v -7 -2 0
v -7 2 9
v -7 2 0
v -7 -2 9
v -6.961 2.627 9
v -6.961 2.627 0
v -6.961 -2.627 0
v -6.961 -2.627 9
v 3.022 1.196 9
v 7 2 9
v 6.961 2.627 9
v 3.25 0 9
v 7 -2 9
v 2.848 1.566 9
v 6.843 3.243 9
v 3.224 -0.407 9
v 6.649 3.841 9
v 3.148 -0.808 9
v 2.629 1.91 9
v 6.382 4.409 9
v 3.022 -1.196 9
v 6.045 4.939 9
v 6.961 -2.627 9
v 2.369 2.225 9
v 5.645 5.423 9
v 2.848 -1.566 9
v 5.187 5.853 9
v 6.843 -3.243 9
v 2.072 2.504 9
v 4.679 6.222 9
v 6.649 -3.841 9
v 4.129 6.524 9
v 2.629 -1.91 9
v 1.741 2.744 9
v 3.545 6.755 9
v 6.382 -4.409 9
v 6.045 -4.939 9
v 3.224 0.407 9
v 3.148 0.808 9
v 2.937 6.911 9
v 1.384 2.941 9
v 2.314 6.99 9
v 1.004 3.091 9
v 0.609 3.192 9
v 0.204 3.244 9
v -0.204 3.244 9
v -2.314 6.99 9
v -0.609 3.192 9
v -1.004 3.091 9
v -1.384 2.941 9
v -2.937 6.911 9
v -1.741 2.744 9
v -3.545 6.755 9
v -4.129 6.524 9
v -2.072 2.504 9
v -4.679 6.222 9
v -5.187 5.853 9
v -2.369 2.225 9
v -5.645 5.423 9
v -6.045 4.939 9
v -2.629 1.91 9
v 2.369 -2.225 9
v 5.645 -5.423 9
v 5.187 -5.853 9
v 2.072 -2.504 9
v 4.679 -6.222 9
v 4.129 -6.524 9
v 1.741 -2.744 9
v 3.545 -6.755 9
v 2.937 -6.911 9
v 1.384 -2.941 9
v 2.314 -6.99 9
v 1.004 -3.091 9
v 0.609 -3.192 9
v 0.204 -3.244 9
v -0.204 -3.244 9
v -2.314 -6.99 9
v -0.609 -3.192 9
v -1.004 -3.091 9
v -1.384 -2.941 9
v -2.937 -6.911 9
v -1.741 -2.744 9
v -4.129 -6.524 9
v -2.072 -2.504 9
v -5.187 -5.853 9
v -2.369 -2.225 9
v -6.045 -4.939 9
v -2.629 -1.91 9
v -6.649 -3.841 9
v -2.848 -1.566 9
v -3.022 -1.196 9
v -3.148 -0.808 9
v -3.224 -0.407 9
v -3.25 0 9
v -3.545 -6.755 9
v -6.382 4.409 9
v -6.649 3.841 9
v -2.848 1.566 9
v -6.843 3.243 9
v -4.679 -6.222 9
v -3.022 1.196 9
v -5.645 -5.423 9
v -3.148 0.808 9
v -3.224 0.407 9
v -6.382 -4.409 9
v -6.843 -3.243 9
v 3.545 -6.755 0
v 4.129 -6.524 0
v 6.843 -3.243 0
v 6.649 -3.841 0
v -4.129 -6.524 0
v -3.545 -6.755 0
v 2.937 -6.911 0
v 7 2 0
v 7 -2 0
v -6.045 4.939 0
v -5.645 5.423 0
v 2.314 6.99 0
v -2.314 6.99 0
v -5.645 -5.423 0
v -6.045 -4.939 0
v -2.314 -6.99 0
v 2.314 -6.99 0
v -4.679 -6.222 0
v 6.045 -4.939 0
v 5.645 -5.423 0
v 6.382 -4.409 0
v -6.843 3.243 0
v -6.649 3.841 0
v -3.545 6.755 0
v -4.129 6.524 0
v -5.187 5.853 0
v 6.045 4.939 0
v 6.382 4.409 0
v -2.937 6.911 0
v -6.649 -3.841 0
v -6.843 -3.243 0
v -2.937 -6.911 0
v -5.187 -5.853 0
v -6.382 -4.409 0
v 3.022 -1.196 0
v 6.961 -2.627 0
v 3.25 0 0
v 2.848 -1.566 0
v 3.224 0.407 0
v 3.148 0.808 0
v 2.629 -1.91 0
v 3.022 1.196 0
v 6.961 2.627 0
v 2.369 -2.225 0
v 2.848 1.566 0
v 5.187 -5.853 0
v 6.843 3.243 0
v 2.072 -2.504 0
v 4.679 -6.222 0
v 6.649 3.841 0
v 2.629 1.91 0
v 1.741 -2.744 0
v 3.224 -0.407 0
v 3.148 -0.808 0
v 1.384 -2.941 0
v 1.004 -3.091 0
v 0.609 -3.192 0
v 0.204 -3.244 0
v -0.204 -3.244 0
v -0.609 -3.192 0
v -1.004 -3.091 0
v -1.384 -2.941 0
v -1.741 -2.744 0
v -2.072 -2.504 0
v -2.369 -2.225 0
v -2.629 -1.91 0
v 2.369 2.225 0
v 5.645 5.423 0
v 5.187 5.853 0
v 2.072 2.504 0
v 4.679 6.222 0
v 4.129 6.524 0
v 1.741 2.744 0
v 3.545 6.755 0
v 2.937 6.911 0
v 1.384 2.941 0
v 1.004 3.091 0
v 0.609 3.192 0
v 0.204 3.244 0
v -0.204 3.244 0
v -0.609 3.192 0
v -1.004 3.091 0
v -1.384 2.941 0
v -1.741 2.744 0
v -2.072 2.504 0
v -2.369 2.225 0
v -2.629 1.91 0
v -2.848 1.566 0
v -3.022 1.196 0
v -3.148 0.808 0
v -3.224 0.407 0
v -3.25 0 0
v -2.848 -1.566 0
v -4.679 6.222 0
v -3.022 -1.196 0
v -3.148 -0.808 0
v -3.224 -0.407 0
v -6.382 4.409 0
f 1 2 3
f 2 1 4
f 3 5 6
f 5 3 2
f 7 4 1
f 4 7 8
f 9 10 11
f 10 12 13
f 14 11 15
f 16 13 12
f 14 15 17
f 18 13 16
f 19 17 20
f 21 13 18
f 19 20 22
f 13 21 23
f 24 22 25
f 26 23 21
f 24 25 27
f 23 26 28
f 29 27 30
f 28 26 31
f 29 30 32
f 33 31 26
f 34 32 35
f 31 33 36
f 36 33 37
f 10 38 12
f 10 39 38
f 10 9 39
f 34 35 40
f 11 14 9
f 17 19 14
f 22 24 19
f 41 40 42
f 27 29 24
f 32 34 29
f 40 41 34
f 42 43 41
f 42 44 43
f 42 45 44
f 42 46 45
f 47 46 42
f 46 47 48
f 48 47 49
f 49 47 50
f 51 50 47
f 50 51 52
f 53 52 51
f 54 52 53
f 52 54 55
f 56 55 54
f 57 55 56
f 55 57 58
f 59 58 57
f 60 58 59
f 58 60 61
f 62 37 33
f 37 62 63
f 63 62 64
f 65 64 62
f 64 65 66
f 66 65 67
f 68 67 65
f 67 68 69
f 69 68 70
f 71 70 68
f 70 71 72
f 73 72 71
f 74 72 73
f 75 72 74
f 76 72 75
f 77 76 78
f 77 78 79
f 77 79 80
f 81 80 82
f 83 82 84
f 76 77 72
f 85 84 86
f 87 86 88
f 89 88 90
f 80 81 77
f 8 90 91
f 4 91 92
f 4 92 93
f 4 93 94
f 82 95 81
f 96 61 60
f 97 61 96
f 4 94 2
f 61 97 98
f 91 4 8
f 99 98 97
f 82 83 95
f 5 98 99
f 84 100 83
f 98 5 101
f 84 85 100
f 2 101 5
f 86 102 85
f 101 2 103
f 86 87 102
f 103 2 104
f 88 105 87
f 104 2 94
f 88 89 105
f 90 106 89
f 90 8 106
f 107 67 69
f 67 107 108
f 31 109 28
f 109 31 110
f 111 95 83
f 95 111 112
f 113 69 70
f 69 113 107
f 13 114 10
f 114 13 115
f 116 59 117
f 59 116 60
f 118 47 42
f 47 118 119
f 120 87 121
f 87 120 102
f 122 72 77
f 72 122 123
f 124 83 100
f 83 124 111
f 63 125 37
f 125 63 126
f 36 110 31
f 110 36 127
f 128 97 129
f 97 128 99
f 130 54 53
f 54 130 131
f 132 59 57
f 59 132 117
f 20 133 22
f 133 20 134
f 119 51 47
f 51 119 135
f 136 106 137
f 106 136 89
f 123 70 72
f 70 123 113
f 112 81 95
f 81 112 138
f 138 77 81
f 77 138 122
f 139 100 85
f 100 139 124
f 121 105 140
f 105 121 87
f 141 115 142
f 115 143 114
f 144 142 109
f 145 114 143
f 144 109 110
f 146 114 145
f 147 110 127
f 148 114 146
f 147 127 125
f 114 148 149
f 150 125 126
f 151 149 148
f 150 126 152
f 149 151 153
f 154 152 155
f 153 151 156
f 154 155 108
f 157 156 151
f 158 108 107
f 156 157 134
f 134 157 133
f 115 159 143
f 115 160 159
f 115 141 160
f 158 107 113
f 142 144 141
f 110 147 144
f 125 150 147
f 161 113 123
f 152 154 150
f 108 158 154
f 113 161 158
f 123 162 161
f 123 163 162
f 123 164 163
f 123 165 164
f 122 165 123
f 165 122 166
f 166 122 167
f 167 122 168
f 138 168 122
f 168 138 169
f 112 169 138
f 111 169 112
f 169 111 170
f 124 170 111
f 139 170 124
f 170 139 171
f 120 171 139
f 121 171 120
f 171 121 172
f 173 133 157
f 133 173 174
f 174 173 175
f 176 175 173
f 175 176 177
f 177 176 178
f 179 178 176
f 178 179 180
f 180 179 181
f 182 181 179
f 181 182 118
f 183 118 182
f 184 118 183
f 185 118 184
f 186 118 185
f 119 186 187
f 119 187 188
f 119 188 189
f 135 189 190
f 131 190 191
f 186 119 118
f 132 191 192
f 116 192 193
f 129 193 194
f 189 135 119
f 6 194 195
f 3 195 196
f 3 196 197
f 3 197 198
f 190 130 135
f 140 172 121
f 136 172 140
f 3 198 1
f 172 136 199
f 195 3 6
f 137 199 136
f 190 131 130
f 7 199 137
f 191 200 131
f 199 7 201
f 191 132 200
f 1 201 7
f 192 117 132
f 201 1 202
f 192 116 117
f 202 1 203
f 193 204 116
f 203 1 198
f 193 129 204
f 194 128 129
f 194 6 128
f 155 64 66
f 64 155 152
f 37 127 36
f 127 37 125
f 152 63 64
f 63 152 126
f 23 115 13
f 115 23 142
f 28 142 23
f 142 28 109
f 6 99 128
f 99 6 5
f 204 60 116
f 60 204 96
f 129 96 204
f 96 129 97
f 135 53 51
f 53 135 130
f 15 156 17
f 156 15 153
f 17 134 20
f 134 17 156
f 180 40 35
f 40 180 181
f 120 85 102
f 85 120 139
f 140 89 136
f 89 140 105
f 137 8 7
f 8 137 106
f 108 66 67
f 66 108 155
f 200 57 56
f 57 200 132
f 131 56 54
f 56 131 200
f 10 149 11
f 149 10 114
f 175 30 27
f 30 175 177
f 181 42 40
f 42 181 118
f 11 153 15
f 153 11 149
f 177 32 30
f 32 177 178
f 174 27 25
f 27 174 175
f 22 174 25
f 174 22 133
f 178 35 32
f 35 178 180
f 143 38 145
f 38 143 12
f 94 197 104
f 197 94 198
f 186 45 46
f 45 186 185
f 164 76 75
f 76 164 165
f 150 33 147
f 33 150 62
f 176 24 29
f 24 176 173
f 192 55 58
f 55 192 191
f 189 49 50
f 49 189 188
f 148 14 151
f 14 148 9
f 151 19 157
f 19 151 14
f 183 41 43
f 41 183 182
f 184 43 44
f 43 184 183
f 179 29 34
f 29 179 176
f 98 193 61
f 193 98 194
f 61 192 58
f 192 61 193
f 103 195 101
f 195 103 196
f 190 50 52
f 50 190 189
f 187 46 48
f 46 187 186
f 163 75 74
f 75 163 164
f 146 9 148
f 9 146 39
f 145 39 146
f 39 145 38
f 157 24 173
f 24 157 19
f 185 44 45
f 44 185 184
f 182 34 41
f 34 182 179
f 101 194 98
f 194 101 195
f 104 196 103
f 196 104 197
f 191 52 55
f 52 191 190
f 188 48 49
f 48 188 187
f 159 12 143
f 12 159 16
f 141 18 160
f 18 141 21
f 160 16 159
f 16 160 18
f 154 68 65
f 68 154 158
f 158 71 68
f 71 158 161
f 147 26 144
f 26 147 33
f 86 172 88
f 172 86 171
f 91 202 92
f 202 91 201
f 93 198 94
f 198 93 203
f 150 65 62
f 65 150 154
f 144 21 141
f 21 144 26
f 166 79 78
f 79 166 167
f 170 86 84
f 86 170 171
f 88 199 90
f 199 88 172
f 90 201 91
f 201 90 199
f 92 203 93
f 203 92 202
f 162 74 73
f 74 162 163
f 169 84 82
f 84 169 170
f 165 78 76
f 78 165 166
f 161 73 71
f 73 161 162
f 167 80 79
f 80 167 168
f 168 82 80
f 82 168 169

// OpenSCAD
// Generated by SolidPython 1.1.3 on 2023-03-12 22:43:50
$fn = 50;


difference() {
	union() {
		translate(v = [0, 0, 0]) {
			rotate(a = [0, 0, 0]) {
				hull() {
					translate(v = [-2.0000000000, 2.0000000000, 0]) {
						rotate(a = [0, 0, 0]) {
							translate(v = [0, 0, 0]) {
								rotate(a = [0, 0, 0]) {
									cylinder(h = 9, r = 5);
								}
							}
						}
					}
					translate(v = [2.0000000000, 2.0000000000, 0]) {
						rotate(a = [0, 0, 0]) {
							translate(v = [0, 0, 0]) {
								rotate(a = [0, 0, 0]) {
									cylinder(h = 9, r = 5);
								}
							}
						}
					}
					translate(v = [-2.0000000000, -2.0000000000, 0]) {
						rotate(a = [0, 0, 0]) {
							translate(v = [0, 0, 0]) {
								rotate(a = [0, 0, 0]) {
									cylinder(h = 9, r = 5);
								}
							}
						}
					}
					translate(v = [2.0000000000, -2.0000000000, 0]) {
						rotate(a = [0, 0, 0]) {
							translate(v = [0, 0, 0]) {
								rotate(a = [0, 0, 0]) {
									cylinder(h = 9, r = 5);
								}
							}
						}
					}
				}
			}
		}
	}
	union() {
		translate(v = [0.0000000000, 0.0000000000, 0]) {
			rotate(a = [0, 0, 0]) {
				translate(v = [0, 0, -50]) {
					rotate(a = [0, 0, 0]) {
						cylinder(h = 100, r = 3.2500000000);
					}
				}
			}
		}
	}
}
/***********************************************
*********      SolidPython code:      **********
************************************************
 
from solid import *
import os
import subprocess

import oomB

import opsc_library_gen

mode = "laser"
#mode = "3d_print"

defined_objects = {}

radius_dict = {}
countersunk_dict = {}


def set_mode(m):
    global mode
    mode = m
    radius_dict['M6'] = 6.5/2
    radius_dict['M3'] = 3.3/2
    if mode == "laser":
        radius_dict['M6'] = 6/2
        radius_dict['M3'] = 3/2

    countersunk_dict['M3'] = {}
    countersunk_dict['M3']['little_rad'] = radius_dict['M3']
    countersunk_dict['M3']['big_rad'] = (5.5+0.6)/2
    if mode == "laser":
        countersunk_dict['M3']['big_rad'] = (4.75+0.6)/2
        countersunk_dict['M3']['little_rad'] = (4.75+0.6)/2

    countersunk_dict['M3']['height'] = 1.7


def opsc_make_object(filename, objects, save_type="none",resolution=50, layers = 1, tilediff = 200, mode="laser", overwrite=True):
    if overwrite or not os.path.exists(filename):
        set_mode(mode)
        save_type = save_type.lower()
        os.makedirs(os.path.dirname(filename), exist_ok=True)
        final_object = opsc_get_object(objects, mode = mode)
        # Save the final object to the specified filename    
        scad_render_to_file(final_object, filename, file_header='$fn = %s;' % resolution, include_orig_code=True)
        if mode == "laser":
            filename_laser = filename.replace(".scad","-flat.scad")
            scad_render_to_file(getLaser(final_object, layers=layers, tilediff=tilediff), filename_laser, file_header='$fn = %s;' % resolution, include_orig_code=True)
            if save_type == "all":
                saveToAll(filename_laser)
            elif save_type == "dxf":
                saveToDxf(filename_laser)
        if save_type == "all":
            saveToAll(filename)
        elif save_type == "dxf":
            saveToDxf(filename)


def opsc_get_object(objects, mode = "laser"):
    # Create the solidpython objects only include the positive objects and if they don't have inclusion or their inclusion is either all or mode
    # Initialize an empty list to store the results
    positive_objects = []

    # Iterate over the "objects" list
    for obj in objects:
        # Check if the current object has a "type" key with a value of "positive"
        if obj['type'] == 'positive':
            # Check if the current object has an "inclusion" key and its value matches "mode",
            # or if the current object does not have an "inclusion" key at all
            if not 'inclusion' in obj or obj['inclusion'] == "all" or obj['inclusion'] == mode:
                # Call the "get_opsc_item" function with the current object as an argument
                opsc_item = get_opsc_item(obj)
                # Add the result to the "positive_objects" list
                positive_objects.append(opsc_item)
# Initialize an empty list to store the results
    negative_objects = []

    # Iterate over the "objects" list
    for obj in objects:
        # Check if the current object has a "type" key with a value of "negative"
        if obj['type'] == 'negative':
            # Check if the current object has an "inclusion" key and its value matches "mode",
            # or if the current object does not have an "inclusion" key at all
            if not 'inclusion' in obj or obj['inclusion'] == "all" or obj['inclusion'] == mode:
                # Call the "get_opsc_item" function with the current object as an argument
                opsc_item = get_opsc_item(obj)
                # Add the result to the "negative_objects" list
                negative_objects.append(opsc_item)
    
    #positive_objects = [get_opsc_item(obj) for obj in objects if obj['type'] == 'positive']
    #negative_objects = [get_opsc_item(obj) for obj in objects if obj['type'] == 'negative']
    # Union the positive objects
    positive_object = union()(*positive_objects)
    # Union the negative objects
    negative_object = union()(*negative_objects)
    # Create the final object by subtracting the negative objects from the positive objects
    return difference()(positive_object, negative_object)

def get_opsc_item(params):
    # A dictionary to map radius string values to numerical values
    #radius_dict = {'small': 5, 'medium': 10, 'large': 15}
    # An array of function names for basic shapes
    basic_shapes = ['cube', 'sphere', 'cylinder']
    
    # An array of function names for other shapes
    other_shapes = ['hole', 'slot', 'rounded_rectangle', 'countersunk']
    


    # Convert radius to r if present, and remove radius from the params dictionary
    if 'radius' in params:
        if isinstance(params['radius'], str):
            # Use the radius_dict to map the radius string value to a numerical value
            params['r'] = radius_dict[params['radius']]
        else:
            params['r'] = params['radius']
        del params['radius']
    

    # Check if the object type is a basic shape
    if params['shape'] in basic_shapes:
        # Remove shape and unexpected dictionary values
        allowed_keys = {'size', 'r', 'r1', 'r2', 'd', 'h', 'rw', 'rh', 'dw', 'dh'}
        shape_params = {k: v for k, v in params.items() if k in allowed_keys}

        # Call the corresponding function for the shape parameter, using ** notation to pass the shape_params dictionary as keyword arguments
        return get_opsc_transform(params,globals()[params['shape']](**shape_params))
    
    # If the object type is not a basic shape, check if it's a defined object or one of the other shapes
    elif params['shape'] in other_shapes:
        # Call the corresponding function for the shape parameter, passing the params dictionary as an argument
        p2 = copy.deepcopy(params)
        p2["pos"] = [0,0,0]
        return get_opsc_transform(params,globals()[params['shape']](p2))
    
    # If the object is not a basic shape or a defined object, try to import it from a .scad file
    else:
        obj = defined_objects[params['shape']]
        return get_opsc_transform(params,obj)

def get_opsc_transform(params, solid_obj):
    # Rotate the object based on the 'rot' field in the params dictionary, or the 'rotX', 'rotY', and 'rotZ' fields if 'rot' is not present
    rot = params.get('rot', [])
    if rot:
        rotX, rotY, rotZ = rot
    else:
        rotX = params.get('rotX', 0)
        rotY = params.get('rotY', 0)
        rotZ = params.get('rotZ', 0)
    solid_obj = rotate([rotX, rotY, rotZ])(solid_obj)

    # Translate the object based on the 'pos' field in the params dictionary, or the 'x', 'y', and 'z' fields if 'pos' is not present
    pos = params.get('pos', [])
    if pos:
        x, y, z = pos
    else:
        x = params.get('x', 0)
        y = params.get('y', 0)
        z = params.get('z', 0)
    solid_obj = translate([x, y, z])(solid_obj)
    return solid_obj


import random

def opsc_easy_array(type, shape, repeats, pos_start, shift_arr, **kwargs):
    for i in range(0,3):
        repeats.append(1)
        pos_start.append(0)
        shift_arr.append(0)
    return_objects = []

    for x in range(0,repeats[0]):
        for y in range(0,repeats[1]):
            for z in range(0,repeats[2]):
                return_objects.append(opsc_easy(type, shape, pos=[pos_start[0]+x*shift_arr[0],pos_start[1]+y*shift_arr[1],pos_start[2]+z*shift_arr[2]], **kwargs))
    return return_objects                



def opsc_easy(type, shape, **kwargs):
    obj = {
        'type': type,
        'shape': shape
    }
    for param in ['size', 'r', 'r1', 'r2', 'd', 'h', 'rw', 'rh', 'dw', 'dh', 'pos', 'x', 'y', 'z', 'rot', 'rotX', 'rotY', 'rotZ', "w", "inclusion"]:
        if param in kwargs:
            obj[param] = kwargs[param]
    return obj

def hole(params):
    p2 = copy.deepcopy(params)  
    # Check if the radius is a string and replace it with the corresponding value from the dictionary
    if isinstance(p2['r'], str):
        p2['r'] = radius_dict[p2['r']]
    
    # Set the height to 100 if not specified
    if 'h' not in p2:
        p2['h'] = 100
        p2["pos"] = [0,0,-50]
    p2["center"] = True
    # Create the cylinder object
    p2["shape"] = "cylinder"
    p2["type"] = "positive"

    return get_opsc_item(p2)

import copy

def countersunk(params):
    p2 = copy.deepcopy(params)
    counter_rad = p2['r']
    p2['r'] = radius_dict[p2['r']]
    hp = copy.deepcopy(p2)
    hp["type"] = "positive"
    hp["shape"] = "hole"
    del hp["rot"]
    hol = get_opsc_item(hp)
    
    cp = copy.deepcopy(p2)
    cp["h"] = countersunk_dict[counter_rad]["height"]
    cp["r2"] = countersunk_dict[counter_rad]["little_rad"]
    cp["r1"] = countersunk_dict[counter_rad]["big_rad"]
    del cp["r"]
    del cp["rot"]
    cp["type"] = "positive"
    cp["shape"] = "cylinder"
    cp["pos"] = [0,0,0]

    top = get_opsc_item(cp)
    return union()(hol,top)



def slot(params):  
    p2 = copy.deepcopy(params) 
    if isinstance(p2['r'], str):
        p2['r'] = radius_dict[p2['r']]
    p2["type"] = "positive"
    p2["shape"] = "hole"
    del p2["rot"]
    p2["pos"] = [0,0,0]
    left = copy.deepcopy(p2)
    right = copy.deepcopy(p2)
    left["pos"][0] = p2["w"] / 2 - p2["r"] 
    
    right["pos"][0] = -p2["w"] / 2 + p2["r"] 
    pass
    leftObj = get_opsc_item(left)
    rightObj = get_opsc_item(right)
    return hull()(leftObj, rightObj)

def rounded_rectangle(params):   
    p2 = copy.deepcopy(params) 
    p2["h"] = p2["size"][2]
    p2["pos"] = p2.get("pos", [0, 0, 0]) 
    p2["type"] = "positive"
    p2["shape"] = "hole"
    p2["pos"] = [0,0,0]
    
    if 'rot' in p2:
        del p2["rot"]   
    if 'r' not in p2:
        p2["r"] = 5 
    tl = copy.deepcopy(p2)
    tr = copy.deepcopy(p2)
    bl = copy.deepcopy(p2)
    br = copy.deepcopy(p2)
    tl["pos"][0] = -(p2["size"][0] - p2["r"]*2)/2
    tl["pos"][1] = (p2["size"][1] - p2["r"]*2)/2
    tr["pos"][0] = (p2["size"][0] - p2["r"]*2)/2
    tr["pos"][1] = (p2["size"][1] - p2["r"]*2)/2
    bl["pos"][0] = -(p2["size"][0] - p2["r"]*2)/2
    bl["pos"][1] = -(p2["size"][1] - p2["r"]*2)/2
    br["pos"][0] = (p2["size"][0] - p2["r"]*2)/2
    br["pos"][1] = -(p2["size"][1] - p2["r"]*2)/2
    del tl["size"]
    del tr["size"]
    del bl["size"]
    del br["size"]
    tlo = get_opsc_item(tl)
    tro = get_opsc_item(tr)
    blo = get_opsc_item(bl)
    bro = get_opsc_item(br)    
    return hull()(tlo, tro, blo, bro)



def import_scad_object(filename):
    # Import the .scad file and convert it to a solidpython object
    #filename = "parts"
    obj = import_scad(filename)
    return obj.main()
    


import os
import solid as solidpython

# A dictionary to store the defined objects


def load_scad_objects():
    opsc_library_gen.gen_library(defined_objects)

import random

def test(num_objects):
    objects = []
    for i in range(num_objects):
        # Choose a random shape
        #shape = random.choice(['cube', 'sphere', 'cylinder', 'hole', 'slot', "rounded_rectangle"])
        shape = random.choice(["rounded_rectangle"])

        # Choose a random type
        type = random.choice(['positive', 'negative'])
        
        # Create an empty object dictionary
        obj = {'shape': shape, 'type': type}
        
        # Set shape-specific parameters
        if obj['shape'] in ['cube']:
            obj['size'] =  [random.uniform(5, 15), random.uniform(5, 15), random.uniform(5, 15)]
        if obj['shape'] in ['rounded_rectangle']:
            obj['size'] =  [random.uniform(5, 15), random.uniform(5, 15), random.uniform(5, 15)]
            obj['r'] = random.uniform(0.5, 5)
        elif obj['shape'] == 'sphere':
            obj['r'] = random.uniform(5, 15)
        elif obj['shape'] in ['cylinder', 'hole']:
            obj['r'] = random.uniform(0.5, 5)
            obj['h'] = random.uniform(5, 15)
        elif obj['shape'] == 'slot':
            obj['r'] = random.uniform(0.5, 5)
            obj['h'] = random.uniform(5, 15)
            obj['w'] = random.uniform(5, 15)
        
        # Set a random position and rotation
        obj['pos'] = [random.uniform(-20, 20), random.uniform(-20, 20), random.uniform(-20, 20)]
        obj['rot'] = [random.uniform(-180, 180), random.uniform(-180, 180), random.uniform(-180, 180)]
        
        # Add the object to the list
        objects.append(obj)
    return objects

####### old file saving
def saveToAll(fileIn):
    saveToDxf(fileIn)
    saveToPng(fileIn)
    saveToStl(fileIn)
    saveToSvg(fileIn)

def saveToDxf(fileIn, fileOut="", copy_to_laser=True):
    if fileOut == "":
        fileOut = fileIn.replace(".scad",".dxf")
    saveToFile(fileIn, fileOut)


    
def saveToPng(fileIn, fileOut="",extra="--render"):
    if fileOut == "":
        fileOut = fileIn.replace(".scad",".png")
    saveToFile(fileIn, fileOut)

def saveToStl(fileIn, fileOut=""):
    if fileOut == "":
        fileOut = fileIn.replace(".scad",".stl")
    saveToFile(fileIn, fileOut)
    
def saveToSvg(fileIn, fileOut=""):
    if fileOut == "":
        fileOut = fileIn.replace(".scad",".svg")
    saveToFile(fileIn, fileOut)

def saveToFile(fileIn, fileOut,extra=""):
    #extra = extra + " --colorscheme Tomorrow"

    launchStr = 'openscad -o "' + fileOut + '"' + extra + ' "' + fileIn + '"'
    if ".png" in fileOut:
        launchStr = launchStr + " --render"
    print("            saveToFile launch string: " + launchStr)
    subprocess.run(launchStr)
    x=0

def getLaser(final_object,start=1.5,layers=1,thickness=3,tilediff=200):
        rv= []

        for x in range(layers):
            rv.append(translate([0,x*tilediff,0])(
                    projection()(
                        intersection()(translate([-500,-500,start+x*thickness])(cube(size=[1000,1000,0.1])),
                            final_object
                        )
                    )
            )
            )
            
        return union()(rv)

set_mode("laser")
load_scad_objects() 
 
************************************************/
